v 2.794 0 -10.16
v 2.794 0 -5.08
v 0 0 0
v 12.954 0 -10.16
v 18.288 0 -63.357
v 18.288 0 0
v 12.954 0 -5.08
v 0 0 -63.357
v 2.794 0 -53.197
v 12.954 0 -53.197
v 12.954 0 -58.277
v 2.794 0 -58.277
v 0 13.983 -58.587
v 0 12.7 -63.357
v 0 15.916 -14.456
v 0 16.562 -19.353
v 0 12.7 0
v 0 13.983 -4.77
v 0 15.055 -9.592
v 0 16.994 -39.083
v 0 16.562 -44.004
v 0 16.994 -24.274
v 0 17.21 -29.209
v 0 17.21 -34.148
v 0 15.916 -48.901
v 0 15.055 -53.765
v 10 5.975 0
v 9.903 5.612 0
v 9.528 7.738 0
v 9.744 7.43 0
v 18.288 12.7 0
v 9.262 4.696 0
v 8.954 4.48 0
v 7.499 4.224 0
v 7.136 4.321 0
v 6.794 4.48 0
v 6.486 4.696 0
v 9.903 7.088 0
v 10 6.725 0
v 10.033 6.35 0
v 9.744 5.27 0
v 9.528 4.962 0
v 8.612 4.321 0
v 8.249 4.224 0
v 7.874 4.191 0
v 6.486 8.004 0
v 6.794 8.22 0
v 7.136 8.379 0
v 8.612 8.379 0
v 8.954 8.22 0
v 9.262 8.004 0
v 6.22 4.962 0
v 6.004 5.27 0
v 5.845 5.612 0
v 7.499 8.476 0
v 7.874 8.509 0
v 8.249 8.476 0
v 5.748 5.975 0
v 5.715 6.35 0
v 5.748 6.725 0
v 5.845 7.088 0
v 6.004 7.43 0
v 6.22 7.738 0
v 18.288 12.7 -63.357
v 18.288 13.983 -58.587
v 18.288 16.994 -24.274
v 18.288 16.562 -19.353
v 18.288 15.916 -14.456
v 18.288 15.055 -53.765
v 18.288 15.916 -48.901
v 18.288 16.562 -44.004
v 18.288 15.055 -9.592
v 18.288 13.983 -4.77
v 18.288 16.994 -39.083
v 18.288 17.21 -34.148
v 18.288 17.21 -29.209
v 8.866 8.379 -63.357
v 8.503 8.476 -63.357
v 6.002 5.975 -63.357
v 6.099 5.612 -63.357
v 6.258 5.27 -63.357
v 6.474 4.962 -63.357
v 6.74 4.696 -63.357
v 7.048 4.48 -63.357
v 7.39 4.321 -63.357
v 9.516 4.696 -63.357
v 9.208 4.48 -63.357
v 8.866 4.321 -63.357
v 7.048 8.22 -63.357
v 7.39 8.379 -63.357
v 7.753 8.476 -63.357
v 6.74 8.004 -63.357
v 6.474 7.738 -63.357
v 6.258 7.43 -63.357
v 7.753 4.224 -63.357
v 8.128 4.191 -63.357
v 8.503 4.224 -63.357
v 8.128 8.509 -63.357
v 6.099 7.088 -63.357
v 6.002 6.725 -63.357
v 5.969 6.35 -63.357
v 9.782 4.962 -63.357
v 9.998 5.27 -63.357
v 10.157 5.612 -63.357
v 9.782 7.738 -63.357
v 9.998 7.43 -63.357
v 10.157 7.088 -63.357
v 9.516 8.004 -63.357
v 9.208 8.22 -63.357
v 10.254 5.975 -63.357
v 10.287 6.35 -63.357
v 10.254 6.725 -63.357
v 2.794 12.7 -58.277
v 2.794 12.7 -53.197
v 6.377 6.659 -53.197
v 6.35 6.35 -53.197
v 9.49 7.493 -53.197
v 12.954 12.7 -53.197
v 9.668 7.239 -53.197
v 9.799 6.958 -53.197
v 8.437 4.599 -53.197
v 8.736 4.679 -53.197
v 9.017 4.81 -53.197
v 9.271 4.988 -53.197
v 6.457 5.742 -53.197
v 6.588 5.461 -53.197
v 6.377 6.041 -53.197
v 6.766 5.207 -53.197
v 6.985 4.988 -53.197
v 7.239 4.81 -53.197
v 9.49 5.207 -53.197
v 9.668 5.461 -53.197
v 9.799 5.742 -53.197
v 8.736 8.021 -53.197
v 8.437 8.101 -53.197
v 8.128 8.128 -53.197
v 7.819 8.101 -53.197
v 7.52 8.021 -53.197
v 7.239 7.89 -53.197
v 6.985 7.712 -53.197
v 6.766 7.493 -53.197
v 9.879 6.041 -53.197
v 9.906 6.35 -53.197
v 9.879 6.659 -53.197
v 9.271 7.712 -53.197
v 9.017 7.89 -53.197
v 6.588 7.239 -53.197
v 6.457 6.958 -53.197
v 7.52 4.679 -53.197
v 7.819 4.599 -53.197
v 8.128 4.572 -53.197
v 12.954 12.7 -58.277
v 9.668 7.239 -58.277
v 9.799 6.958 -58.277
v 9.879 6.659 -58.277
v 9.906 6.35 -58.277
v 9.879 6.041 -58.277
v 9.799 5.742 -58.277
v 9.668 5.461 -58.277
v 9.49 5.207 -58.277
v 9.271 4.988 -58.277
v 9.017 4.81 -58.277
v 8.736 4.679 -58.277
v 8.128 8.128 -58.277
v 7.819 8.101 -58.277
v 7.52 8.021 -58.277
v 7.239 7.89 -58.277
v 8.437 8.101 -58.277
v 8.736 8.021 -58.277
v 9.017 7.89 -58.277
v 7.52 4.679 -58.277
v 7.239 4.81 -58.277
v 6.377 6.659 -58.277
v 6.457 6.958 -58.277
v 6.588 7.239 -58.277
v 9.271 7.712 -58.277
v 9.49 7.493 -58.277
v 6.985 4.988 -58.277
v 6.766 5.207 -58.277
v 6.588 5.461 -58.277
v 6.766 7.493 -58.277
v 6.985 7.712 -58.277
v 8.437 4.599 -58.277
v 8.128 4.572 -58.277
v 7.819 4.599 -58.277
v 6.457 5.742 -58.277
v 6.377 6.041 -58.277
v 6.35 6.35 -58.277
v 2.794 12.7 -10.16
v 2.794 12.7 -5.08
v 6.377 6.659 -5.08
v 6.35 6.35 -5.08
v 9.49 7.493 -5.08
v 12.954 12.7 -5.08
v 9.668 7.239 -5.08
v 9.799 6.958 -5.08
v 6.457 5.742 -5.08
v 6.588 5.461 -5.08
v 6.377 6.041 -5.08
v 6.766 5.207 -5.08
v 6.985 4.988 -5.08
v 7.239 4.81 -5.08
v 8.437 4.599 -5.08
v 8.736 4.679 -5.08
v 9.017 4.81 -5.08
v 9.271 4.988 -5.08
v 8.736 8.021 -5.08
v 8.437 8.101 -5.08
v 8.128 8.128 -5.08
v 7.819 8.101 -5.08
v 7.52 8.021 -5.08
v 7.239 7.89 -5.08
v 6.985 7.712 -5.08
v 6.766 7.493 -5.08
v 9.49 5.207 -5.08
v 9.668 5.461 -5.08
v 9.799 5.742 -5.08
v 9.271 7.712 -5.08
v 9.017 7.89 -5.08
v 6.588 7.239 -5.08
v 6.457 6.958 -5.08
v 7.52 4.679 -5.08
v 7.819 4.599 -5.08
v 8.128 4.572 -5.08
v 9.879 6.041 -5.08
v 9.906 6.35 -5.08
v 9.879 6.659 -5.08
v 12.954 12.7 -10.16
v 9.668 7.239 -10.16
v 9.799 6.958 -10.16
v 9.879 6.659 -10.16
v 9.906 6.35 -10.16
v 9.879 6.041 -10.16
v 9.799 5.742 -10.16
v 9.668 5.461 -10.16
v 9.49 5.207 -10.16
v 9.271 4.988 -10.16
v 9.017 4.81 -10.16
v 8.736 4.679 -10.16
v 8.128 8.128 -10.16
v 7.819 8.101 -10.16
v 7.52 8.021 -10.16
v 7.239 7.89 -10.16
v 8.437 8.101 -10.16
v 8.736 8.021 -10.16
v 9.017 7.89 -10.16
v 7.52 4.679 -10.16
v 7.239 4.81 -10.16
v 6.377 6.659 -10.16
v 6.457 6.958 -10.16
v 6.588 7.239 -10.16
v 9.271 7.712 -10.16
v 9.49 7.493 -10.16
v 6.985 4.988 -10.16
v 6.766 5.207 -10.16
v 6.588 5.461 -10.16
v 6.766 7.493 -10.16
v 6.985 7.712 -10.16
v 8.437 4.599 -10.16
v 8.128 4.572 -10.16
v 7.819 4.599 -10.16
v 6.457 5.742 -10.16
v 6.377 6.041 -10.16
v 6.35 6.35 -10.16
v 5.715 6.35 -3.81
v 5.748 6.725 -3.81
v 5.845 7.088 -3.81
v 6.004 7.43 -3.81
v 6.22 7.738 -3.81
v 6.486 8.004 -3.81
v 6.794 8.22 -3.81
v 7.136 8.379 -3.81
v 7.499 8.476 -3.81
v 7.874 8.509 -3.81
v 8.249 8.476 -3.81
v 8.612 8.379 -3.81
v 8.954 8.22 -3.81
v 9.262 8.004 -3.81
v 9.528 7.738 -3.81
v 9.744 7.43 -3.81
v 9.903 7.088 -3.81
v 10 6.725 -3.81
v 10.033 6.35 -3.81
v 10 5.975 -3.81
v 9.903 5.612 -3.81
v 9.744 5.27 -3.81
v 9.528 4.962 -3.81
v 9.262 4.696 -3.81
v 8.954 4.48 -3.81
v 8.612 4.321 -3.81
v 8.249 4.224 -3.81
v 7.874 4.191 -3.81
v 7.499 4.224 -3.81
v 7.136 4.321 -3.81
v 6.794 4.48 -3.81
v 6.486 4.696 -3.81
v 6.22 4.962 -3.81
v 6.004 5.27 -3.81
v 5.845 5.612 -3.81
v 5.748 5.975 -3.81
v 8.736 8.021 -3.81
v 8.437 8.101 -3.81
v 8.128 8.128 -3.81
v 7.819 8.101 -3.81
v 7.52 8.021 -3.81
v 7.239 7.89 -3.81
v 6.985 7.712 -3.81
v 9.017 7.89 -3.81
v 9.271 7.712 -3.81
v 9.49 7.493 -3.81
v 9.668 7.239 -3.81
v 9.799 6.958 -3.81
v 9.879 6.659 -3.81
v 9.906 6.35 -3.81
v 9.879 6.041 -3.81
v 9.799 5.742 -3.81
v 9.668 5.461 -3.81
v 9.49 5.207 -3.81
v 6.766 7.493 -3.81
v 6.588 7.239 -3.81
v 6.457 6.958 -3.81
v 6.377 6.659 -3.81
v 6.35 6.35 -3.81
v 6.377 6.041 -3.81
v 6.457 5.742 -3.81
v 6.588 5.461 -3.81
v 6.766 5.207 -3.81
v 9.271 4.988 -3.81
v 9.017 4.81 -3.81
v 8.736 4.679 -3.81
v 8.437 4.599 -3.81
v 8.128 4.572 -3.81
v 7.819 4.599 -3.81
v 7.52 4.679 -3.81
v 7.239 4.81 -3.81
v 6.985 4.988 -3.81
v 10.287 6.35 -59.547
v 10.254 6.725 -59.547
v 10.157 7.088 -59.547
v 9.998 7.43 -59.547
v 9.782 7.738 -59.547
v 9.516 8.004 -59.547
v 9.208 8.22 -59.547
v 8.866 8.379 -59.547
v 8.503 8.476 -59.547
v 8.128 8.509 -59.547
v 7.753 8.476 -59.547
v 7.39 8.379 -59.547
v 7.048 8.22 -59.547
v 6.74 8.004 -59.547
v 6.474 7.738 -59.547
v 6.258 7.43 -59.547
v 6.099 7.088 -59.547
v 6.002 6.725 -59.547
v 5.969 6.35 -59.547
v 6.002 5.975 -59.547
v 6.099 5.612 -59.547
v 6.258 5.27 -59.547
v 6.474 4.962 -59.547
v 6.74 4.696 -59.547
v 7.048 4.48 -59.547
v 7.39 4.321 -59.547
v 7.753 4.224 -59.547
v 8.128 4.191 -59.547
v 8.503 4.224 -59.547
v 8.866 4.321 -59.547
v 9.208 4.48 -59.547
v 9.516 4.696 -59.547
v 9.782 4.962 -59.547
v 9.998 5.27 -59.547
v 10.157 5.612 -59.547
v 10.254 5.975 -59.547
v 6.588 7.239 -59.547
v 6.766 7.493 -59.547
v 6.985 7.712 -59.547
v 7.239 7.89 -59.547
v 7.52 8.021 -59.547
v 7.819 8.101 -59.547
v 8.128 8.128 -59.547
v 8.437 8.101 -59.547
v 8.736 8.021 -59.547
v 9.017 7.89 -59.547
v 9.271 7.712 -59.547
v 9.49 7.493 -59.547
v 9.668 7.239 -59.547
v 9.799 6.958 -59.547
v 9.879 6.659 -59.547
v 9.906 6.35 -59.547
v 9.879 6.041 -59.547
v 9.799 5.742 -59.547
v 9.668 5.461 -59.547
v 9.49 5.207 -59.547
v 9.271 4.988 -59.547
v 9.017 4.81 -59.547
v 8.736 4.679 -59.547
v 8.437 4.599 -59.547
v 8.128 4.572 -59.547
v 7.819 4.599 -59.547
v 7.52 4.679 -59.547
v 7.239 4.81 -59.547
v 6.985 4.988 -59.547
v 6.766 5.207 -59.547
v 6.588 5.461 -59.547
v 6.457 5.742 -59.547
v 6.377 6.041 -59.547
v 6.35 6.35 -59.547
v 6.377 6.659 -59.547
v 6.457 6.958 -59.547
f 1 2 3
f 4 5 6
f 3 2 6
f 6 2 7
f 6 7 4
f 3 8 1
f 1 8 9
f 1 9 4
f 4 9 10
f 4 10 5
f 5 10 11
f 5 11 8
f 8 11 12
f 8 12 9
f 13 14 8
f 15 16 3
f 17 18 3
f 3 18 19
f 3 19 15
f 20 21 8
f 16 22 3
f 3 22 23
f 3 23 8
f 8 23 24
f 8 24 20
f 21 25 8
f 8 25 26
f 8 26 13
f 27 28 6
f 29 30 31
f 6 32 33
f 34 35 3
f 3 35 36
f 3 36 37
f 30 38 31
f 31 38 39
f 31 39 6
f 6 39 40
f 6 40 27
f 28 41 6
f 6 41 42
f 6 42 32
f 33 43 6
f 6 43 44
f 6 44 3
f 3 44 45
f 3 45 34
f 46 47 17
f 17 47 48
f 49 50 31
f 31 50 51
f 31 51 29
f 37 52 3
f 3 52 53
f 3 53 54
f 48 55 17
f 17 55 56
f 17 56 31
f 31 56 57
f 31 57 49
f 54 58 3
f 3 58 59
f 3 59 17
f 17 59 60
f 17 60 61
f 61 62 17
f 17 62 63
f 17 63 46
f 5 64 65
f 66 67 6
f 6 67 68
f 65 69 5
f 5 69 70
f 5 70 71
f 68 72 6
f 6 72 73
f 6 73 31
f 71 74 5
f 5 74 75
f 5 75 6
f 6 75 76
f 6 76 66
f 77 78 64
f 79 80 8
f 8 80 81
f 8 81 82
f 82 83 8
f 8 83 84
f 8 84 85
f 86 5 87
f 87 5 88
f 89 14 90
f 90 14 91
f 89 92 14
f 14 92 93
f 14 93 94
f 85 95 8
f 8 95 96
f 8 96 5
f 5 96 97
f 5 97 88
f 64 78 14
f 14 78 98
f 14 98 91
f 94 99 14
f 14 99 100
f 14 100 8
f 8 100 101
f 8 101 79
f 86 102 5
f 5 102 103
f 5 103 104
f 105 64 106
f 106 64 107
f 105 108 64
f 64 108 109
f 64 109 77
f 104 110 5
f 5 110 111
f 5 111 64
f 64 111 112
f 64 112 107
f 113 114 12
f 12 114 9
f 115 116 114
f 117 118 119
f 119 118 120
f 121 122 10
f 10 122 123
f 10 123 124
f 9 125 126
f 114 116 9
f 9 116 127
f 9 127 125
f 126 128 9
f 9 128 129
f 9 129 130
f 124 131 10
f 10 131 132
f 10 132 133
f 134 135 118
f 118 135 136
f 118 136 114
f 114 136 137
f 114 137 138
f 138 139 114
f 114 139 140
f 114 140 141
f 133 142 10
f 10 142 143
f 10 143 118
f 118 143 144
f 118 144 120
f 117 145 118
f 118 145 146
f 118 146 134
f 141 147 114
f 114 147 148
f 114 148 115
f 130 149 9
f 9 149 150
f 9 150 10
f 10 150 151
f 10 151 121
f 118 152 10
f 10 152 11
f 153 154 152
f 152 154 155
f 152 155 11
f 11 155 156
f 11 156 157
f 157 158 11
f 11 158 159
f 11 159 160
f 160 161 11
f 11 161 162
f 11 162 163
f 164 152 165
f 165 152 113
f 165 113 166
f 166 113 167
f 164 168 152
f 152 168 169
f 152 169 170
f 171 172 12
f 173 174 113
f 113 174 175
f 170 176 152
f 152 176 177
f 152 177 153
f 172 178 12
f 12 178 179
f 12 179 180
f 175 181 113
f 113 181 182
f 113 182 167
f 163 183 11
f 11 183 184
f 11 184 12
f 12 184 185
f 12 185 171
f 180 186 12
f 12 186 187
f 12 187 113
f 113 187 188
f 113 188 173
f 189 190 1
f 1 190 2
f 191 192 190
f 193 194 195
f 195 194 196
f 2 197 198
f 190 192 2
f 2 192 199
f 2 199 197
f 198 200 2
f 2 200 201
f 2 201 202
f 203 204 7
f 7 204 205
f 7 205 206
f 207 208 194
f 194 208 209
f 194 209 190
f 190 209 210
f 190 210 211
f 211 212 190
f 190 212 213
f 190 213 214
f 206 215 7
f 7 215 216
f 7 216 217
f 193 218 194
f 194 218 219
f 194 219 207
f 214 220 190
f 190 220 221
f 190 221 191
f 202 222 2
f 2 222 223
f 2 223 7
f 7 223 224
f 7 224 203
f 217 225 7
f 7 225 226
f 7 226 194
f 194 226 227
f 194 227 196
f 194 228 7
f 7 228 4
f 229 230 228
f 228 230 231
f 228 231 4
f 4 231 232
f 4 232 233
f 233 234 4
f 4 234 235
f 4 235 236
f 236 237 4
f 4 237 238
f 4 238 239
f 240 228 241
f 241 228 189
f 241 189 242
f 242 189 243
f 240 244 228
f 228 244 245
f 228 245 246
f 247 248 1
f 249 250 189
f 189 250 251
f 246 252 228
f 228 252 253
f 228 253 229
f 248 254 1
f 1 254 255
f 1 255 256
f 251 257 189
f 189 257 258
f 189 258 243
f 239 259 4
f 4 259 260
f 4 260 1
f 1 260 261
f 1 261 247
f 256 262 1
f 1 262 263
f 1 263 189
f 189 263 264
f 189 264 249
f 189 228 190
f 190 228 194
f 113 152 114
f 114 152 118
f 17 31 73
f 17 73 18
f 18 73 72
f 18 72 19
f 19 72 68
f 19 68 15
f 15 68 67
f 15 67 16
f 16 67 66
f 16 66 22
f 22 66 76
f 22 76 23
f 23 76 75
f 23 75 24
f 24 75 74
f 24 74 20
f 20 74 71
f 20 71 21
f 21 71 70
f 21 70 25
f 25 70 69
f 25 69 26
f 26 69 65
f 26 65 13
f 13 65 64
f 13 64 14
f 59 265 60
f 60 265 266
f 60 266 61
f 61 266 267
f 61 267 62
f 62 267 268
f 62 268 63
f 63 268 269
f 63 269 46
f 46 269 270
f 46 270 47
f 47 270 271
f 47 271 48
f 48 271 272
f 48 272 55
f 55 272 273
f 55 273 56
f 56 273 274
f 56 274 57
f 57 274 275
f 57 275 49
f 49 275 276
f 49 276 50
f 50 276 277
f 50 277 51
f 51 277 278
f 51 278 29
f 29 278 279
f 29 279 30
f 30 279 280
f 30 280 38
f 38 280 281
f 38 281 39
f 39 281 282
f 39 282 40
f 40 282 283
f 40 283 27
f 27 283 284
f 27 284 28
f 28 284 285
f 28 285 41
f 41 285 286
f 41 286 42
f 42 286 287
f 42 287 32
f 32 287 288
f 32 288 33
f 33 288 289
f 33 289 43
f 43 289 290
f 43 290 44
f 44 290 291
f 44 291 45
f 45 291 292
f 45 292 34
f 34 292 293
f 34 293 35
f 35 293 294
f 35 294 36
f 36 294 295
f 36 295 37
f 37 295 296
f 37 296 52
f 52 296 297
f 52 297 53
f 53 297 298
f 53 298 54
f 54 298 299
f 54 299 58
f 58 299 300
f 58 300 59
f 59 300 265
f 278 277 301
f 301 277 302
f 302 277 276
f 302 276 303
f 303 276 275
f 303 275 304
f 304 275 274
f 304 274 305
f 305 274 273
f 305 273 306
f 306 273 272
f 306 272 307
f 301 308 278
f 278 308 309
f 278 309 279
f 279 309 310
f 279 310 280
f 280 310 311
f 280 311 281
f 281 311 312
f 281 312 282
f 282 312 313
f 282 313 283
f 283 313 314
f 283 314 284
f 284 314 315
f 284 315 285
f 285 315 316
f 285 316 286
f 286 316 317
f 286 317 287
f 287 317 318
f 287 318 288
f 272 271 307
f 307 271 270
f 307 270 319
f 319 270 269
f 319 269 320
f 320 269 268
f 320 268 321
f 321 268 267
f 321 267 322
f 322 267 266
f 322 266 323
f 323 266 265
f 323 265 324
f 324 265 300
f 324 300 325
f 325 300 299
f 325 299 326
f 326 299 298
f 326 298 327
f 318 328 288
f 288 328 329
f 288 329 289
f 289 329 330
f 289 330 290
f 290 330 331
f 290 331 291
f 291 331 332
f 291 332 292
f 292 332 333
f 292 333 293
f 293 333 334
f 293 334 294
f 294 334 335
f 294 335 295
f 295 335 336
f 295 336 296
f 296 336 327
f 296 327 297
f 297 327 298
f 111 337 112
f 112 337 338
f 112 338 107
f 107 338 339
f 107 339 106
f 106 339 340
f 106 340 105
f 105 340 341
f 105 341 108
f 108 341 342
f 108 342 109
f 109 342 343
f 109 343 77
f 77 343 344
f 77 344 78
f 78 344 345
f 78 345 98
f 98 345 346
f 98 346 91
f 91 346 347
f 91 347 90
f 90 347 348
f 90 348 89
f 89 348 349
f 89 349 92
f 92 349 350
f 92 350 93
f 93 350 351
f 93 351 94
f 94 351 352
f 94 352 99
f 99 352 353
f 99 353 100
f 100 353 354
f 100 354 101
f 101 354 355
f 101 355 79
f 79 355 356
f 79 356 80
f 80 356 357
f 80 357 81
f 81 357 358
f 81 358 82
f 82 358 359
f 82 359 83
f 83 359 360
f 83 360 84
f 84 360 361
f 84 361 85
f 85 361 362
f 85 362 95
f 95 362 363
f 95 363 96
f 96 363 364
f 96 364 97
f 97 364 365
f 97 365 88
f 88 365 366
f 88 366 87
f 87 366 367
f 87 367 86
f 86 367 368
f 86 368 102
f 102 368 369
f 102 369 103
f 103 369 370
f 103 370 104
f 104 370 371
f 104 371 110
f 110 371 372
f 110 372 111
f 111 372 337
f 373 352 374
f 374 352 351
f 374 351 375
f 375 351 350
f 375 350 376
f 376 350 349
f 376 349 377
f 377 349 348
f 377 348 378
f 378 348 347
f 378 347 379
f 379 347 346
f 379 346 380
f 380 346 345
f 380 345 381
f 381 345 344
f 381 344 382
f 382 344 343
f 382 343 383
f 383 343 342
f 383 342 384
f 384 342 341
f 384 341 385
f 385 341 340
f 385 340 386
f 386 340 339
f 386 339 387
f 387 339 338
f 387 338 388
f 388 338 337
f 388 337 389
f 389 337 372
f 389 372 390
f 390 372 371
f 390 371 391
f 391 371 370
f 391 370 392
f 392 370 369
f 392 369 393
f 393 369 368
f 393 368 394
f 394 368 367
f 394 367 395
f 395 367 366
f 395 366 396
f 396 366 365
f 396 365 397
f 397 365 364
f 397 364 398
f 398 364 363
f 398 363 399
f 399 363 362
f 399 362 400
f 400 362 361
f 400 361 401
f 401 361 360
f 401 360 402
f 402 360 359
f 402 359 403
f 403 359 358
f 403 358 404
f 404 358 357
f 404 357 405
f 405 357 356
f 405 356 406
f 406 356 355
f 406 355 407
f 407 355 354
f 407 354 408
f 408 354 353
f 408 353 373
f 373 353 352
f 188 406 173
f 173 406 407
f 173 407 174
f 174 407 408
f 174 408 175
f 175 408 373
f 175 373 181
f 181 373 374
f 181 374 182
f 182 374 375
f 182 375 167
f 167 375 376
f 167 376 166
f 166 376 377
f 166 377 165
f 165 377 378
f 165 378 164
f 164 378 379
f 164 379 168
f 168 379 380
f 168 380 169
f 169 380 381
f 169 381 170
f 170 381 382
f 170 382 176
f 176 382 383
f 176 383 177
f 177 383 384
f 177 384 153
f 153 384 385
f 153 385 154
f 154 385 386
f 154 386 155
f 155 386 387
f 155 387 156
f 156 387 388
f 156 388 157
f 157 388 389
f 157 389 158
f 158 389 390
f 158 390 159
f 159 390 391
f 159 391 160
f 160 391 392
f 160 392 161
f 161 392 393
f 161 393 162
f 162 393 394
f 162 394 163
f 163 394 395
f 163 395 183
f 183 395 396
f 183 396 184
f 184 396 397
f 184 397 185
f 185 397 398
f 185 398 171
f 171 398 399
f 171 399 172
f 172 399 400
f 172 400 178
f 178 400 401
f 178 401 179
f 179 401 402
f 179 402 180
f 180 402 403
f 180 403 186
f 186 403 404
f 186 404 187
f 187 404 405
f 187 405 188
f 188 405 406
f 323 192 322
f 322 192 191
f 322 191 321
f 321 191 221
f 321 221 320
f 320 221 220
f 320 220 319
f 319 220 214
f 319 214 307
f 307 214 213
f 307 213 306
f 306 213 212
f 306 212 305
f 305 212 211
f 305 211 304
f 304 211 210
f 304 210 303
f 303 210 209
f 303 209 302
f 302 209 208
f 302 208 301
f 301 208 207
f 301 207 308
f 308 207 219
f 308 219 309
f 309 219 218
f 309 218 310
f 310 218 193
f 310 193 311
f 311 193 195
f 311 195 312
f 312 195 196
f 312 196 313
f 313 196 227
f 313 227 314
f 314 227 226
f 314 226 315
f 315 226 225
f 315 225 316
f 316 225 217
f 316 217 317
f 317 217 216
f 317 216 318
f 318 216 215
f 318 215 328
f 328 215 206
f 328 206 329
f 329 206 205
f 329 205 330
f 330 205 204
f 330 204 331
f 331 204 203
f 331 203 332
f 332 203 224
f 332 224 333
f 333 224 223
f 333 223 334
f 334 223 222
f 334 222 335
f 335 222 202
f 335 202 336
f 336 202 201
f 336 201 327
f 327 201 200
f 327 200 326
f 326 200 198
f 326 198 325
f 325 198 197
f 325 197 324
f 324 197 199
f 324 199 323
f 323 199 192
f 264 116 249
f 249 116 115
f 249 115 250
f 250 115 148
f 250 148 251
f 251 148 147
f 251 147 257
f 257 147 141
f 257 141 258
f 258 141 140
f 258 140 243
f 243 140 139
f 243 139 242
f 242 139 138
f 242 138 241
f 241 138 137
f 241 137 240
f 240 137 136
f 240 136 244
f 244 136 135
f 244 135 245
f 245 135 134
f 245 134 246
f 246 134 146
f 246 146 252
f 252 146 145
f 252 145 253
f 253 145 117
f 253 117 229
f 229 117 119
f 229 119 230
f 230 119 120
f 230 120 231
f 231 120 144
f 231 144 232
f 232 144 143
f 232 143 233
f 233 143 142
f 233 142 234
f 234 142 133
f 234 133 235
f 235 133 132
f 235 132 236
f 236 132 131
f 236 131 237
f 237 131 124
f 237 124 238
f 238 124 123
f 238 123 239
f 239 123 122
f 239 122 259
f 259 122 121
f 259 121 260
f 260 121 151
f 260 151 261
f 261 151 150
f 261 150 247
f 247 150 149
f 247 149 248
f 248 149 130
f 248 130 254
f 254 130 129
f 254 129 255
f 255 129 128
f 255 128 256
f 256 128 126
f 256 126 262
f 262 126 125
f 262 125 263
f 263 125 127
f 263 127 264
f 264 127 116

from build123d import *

# Parameters (mm, degrees)
SKETCH1_W               = 18.288
SKETCH1_H               = 63.35702232
SKETCH1_W_2             = 10.16
SKETCH1_H_2             = 5.08
BOSS_EXTRUDE1_DEPTH     = 12.7
BOSS_EXTRUDE2_DEPTH     = 18.288
CUT_EXTRUDE1_DEPTH      = 69.159320254
CUT_EXTRUDE1_DEPTH_BACK = 3.81
SKETCH6_R               = 2.159
CUT_EXTRUDE2_DEPTH      = 69.159320254
CUT_EXTRUDE2_DEPTH_BACK = 3.81
SKETCH9_R               = 2.159
CUT_EXTRUDE3_DEPTH      = 59.834546347
CUT_EXTRUDE3_DEPTH_BACK = 59.834546347
SKETCH10_R              = 1.778


with BuildPart() as part:
    # Sketch1 → Boss-Extrude1 (new body)
    with BuildSketch(Plane(origin=(0, 0, 0), x_dir=(1, 0, 0), z_dir=(0, 1, 0))):
        with Locations((9.144, 31.67851116)):
            Rectangle(SKETCH1_W, SKETCH1_H)
        with Locations((7.874, 55.73702232)):
            Rectangle(SKETCH1_W_2, SKETCH1_H_2, mode=Mode.SUBTRACT)
        with Locations((7.874, 7.62)):
            Rectangle(SKETCH1_W_2, SKETCH1_H_2, mode=Mode.SUBTRACT)
    extrude(amount=BOSS_EXTRUDE1_DEPTH)

    # Sketch2 → Boss-Extrude2 (add)
    with BuildSketch(Plane(origin=(18.288, 0, 0), x_dir=(0, 0, -1), z_dir=(1, 0, 0))):
        with BuildLine():
            Line((0, 12.7), (63.35702232, 12.7))
            ThreePointArc((63.35702232, 12.7), (31.67851116, 17.237450977), (0, 12.7))
        make_face()
    extrude(amount=-BOSS_EXTRUDE2_DEPTH)

    # Sketch6 → Cut-Extrude1 (cut, two sides: drawn at the far end of the back side and taken through both)
    with BuildSketch(Plane.XY.offset(-CUT_EXTRUDE1_DEPTH_BACK)):
        with Locations(Location((7.874, 6.35, 0), (0, 0, 180))):
            Circle(SKETCH6_R)
    extrude(amount=CUT_EXTRUDE1_DEPTH + CUT_EXTRUDE1_DEPTH_BACK, mode=Mode.SUBTRACT)

    # Sketch9 → Cut-Extrude2 (cut, two sides: drawn at the far end of the back side and taken through both)
    with BuildSketch(Plane(origin=(0, 0, -63.35702232), x_dir=(-1, 0, 0), z_dir=(0, 0, -1)).offset(-CUT_EXTRUDE2_DEPTH_BACK)):
        with Locations(Location((-8.128, 6.35, 0), (0, 0, 180))):
            Circle(SKETCH9_R)
    extrude(amount=CUT_EXTRUDE2_DEPTH + CUT_EXTRUDE2_DEPTH_BACK, mode=Mode.SUBTRACT)

    # Sketch10 → Cut-Extrude3 (cut, two sides: drawn at the far end of the back side and taken through both)
    with BuildSketch(Plane(origin=(0, 0, -53.19702232), x_dir=(-1, 0, 0), z_dir=(0, 0, -1)).offset(-CUT_EXTRUDE3_DEPTH_BACK)):
        with Locations((-8.128, 6.35)):
            Circle(SKETCH10_R)
    extrude(amount=CUT_EXTRUDE3_DEPTH + CUT_EXTRUDE3_DEPTH_BACK, mode=Mode.SUBTRACT)


solid = part.part
